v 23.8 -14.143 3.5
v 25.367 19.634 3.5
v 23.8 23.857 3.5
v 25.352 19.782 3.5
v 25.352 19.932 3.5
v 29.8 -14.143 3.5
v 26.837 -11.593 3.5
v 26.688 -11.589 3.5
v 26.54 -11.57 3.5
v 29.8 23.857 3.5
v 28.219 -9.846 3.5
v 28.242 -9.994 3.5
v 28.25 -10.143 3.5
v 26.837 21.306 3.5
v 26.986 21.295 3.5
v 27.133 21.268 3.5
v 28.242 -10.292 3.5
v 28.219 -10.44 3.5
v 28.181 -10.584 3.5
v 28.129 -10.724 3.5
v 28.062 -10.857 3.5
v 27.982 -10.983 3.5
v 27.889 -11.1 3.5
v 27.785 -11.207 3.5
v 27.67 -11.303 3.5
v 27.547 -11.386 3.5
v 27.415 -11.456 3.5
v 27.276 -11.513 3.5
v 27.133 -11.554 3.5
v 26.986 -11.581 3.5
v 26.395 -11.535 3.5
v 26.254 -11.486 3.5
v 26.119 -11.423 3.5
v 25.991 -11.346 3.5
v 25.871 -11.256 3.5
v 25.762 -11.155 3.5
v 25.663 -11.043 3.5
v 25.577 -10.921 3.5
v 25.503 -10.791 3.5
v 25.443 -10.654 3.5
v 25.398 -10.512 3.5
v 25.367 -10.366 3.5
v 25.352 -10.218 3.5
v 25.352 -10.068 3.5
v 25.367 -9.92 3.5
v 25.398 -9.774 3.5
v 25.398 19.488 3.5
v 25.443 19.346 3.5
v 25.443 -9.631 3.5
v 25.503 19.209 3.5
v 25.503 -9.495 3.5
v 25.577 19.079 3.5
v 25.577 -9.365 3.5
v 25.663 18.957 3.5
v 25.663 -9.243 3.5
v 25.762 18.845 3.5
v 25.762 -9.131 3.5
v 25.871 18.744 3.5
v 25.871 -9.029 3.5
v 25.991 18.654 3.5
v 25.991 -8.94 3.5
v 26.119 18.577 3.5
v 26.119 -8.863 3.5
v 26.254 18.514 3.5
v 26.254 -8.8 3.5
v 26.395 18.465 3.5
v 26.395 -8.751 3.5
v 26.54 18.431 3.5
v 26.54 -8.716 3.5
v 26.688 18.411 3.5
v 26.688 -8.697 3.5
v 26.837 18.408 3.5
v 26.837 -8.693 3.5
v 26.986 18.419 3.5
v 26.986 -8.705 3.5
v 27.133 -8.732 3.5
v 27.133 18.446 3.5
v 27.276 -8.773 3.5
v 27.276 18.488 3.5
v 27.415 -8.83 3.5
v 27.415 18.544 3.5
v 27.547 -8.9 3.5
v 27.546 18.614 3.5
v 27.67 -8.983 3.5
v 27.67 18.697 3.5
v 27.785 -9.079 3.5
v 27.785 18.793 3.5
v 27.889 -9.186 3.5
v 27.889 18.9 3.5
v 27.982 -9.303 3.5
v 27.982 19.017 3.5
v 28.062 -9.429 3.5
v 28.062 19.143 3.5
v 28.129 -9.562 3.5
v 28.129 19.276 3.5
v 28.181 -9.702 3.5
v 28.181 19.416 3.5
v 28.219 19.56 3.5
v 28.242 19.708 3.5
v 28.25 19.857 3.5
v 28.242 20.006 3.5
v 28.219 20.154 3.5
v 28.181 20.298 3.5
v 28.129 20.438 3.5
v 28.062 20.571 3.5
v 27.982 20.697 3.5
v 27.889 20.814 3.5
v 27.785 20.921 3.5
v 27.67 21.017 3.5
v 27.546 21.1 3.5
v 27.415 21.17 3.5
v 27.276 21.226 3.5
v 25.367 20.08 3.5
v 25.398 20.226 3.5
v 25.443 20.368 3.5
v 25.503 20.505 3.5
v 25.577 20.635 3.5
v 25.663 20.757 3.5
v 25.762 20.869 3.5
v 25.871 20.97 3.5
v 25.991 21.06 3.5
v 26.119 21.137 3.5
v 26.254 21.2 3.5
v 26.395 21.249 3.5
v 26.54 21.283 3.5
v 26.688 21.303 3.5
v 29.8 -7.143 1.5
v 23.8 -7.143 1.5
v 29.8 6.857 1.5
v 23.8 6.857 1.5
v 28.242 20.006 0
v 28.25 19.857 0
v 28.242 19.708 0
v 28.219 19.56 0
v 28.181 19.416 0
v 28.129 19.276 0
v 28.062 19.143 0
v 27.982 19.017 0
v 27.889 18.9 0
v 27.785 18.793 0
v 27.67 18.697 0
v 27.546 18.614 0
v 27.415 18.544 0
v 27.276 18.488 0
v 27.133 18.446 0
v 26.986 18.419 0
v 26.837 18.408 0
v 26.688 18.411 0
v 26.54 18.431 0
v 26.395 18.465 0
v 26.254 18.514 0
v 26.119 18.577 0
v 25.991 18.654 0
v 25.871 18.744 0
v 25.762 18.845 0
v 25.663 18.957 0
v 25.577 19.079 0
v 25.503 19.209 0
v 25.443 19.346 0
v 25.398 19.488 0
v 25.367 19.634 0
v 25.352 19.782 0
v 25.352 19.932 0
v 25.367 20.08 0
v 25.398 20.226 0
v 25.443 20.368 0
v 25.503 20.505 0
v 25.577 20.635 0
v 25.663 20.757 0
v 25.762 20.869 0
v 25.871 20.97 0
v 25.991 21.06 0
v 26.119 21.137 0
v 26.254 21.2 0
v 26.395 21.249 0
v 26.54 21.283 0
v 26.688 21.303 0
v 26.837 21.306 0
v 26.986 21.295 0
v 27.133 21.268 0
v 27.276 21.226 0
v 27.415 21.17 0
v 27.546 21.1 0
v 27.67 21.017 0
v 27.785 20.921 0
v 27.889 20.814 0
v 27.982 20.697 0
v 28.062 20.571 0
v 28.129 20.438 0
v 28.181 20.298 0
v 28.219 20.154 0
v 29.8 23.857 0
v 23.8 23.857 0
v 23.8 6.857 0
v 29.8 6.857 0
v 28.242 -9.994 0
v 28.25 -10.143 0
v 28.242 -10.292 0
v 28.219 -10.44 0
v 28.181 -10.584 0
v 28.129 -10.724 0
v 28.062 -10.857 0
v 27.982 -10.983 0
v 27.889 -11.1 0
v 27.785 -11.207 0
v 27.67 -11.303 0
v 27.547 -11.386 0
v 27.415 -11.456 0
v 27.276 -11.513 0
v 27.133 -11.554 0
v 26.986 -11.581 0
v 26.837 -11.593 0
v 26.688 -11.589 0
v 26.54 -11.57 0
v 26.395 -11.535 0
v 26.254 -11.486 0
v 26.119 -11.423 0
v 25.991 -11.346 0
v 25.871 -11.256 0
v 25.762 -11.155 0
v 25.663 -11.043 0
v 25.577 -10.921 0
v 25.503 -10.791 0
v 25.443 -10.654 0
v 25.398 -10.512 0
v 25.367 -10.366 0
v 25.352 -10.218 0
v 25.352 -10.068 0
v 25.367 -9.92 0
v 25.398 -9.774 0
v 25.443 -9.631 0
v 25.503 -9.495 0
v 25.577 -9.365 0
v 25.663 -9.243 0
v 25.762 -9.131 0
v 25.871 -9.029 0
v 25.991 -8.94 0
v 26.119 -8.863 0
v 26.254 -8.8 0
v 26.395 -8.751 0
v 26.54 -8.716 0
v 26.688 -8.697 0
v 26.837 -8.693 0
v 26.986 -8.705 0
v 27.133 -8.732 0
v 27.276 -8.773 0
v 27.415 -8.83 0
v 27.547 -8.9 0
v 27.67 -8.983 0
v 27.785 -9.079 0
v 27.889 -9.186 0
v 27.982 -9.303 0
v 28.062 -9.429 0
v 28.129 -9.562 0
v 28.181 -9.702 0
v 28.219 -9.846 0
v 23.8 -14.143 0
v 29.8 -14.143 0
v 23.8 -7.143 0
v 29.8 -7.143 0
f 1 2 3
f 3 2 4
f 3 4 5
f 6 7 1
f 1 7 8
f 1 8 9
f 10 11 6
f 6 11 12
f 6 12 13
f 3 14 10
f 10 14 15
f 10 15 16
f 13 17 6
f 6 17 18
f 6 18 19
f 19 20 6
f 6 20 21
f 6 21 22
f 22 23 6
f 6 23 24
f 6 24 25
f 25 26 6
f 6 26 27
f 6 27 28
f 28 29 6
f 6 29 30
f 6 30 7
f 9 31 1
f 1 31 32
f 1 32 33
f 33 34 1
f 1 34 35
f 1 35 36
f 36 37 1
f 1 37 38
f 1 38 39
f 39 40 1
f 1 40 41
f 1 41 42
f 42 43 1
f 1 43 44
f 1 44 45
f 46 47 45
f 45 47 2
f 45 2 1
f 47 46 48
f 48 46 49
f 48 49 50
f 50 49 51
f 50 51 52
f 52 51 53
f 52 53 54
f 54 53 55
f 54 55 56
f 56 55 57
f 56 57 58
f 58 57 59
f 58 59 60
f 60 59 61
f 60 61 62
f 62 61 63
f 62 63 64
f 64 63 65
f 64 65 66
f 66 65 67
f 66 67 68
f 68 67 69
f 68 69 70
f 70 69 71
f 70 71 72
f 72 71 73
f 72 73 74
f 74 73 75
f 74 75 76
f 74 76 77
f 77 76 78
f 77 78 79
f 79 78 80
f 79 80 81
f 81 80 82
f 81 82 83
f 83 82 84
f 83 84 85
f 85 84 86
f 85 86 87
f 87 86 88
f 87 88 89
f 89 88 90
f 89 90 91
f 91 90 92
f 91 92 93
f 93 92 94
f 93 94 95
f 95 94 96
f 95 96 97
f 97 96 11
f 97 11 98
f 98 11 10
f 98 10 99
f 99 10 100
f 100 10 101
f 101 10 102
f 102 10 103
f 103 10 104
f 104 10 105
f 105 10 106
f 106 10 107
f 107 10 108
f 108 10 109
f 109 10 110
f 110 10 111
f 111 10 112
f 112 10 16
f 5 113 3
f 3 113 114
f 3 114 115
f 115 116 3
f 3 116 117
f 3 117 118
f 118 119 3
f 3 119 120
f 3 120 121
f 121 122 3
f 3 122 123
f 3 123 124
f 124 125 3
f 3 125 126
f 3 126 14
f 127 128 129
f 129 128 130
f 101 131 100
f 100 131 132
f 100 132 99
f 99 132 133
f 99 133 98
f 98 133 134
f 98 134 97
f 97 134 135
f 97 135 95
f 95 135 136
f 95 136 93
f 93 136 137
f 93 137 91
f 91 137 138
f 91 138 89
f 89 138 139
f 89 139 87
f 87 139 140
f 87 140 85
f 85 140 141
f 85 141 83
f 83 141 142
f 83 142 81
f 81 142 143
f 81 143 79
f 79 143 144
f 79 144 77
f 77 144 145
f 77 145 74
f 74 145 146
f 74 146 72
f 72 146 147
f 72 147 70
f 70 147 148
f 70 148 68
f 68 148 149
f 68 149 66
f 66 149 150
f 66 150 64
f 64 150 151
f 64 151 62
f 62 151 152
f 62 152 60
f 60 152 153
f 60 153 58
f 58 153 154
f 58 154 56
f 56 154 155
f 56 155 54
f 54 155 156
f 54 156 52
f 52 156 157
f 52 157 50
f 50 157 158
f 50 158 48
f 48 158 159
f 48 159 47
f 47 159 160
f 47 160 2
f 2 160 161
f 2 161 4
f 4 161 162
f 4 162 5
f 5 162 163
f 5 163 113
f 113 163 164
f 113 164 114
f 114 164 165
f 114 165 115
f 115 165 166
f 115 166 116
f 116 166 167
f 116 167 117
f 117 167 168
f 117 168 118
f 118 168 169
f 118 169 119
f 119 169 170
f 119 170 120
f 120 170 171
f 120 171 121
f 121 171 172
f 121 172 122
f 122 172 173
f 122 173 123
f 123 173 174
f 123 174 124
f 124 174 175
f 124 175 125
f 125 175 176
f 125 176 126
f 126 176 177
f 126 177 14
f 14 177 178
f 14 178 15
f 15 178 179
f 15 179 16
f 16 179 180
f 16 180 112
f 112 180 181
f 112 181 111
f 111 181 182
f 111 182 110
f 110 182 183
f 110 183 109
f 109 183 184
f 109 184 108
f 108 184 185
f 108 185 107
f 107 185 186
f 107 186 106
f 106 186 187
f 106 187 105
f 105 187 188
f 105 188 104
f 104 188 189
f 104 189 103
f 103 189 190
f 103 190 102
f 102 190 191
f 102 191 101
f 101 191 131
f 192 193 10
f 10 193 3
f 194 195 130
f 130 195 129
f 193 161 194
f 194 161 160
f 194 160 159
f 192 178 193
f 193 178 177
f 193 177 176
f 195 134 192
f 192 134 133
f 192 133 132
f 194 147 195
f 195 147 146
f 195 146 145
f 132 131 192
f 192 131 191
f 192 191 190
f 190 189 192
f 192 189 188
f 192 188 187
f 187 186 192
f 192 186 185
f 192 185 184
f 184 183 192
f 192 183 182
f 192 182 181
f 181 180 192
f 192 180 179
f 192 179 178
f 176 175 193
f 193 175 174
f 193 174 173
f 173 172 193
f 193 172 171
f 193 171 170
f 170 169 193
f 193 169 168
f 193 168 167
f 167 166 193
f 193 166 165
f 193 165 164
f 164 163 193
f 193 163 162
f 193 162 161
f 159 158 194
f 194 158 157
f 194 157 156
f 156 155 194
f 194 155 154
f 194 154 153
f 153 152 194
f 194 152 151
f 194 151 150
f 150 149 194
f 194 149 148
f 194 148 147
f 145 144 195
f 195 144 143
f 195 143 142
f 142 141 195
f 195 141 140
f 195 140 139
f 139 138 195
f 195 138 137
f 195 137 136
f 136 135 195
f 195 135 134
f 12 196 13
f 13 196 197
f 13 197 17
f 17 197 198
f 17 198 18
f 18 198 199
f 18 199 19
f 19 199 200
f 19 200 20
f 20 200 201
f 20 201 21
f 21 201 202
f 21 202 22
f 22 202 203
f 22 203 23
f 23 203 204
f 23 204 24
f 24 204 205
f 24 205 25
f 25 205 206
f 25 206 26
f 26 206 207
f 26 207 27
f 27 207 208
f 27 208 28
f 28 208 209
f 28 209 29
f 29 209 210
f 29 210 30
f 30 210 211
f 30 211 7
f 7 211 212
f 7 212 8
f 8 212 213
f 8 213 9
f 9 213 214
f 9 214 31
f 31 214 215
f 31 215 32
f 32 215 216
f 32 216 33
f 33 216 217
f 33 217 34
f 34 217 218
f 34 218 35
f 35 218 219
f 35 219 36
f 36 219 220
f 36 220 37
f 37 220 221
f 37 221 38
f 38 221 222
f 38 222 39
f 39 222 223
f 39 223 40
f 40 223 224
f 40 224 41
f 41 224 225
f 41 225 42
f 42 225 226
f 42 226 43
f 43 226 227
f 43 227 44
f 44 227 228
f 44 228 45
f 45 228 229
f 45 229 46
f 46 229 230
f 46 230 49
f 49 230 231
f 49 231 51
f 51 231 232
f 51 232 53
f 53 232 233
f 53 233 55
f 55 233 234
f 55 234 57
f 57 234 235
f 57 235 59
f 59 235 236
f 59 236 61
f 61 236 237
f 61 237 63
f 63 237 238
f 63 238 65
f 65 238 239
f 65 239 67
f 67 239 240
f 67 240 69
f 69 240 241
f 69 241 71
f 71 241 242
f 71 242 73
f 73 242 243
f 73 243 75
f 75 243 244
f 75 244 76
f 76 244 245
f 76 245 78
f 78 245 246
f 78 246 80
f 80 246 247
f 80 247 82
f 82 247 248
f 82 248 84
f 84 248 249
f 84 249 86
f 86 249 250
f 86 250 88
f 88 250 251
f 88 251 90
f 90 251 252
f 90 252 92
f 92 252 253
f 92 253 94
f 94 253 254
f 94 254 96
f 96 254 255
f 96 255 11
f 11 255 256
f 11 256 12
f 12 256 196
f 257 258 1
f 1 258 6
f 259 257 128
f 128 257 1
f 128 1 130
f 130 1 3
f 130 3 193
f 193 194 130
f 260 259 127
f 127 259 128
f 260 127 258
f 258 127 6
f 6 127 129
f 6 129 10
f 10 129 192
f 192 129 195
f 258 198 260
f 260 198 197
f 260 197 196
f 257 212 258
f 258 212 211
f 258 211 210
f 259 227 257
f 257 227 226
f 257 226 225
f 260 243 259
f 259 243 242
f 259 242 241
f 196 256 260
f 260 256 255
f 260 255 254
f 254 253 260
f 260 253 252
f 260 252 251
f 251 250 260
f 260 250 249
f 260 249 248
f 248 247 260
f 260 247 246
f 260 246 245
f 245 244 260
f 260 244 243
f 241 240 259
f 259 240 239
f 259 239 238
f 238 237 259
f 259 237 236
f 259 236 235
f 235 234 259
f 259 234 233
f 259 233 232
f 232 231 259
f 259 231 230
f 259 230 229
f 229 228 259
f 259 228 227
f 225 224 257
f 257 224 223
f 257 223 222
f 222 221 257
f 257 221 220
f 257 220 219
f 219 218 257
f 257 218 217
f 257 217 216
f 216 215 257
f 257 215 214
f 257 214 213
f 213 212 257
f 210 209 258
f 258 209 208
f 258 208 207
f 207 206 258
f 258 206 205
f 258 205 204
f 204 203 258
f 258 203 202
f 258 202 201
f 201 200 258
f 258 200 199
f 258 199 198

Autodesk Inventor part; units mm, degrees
ref_plane "YZ Plane" through (0, 0, 0) normal (1, 0, 0) x (0, 1, 0)
ref_plane "XZ Plane" through (0, 0, 0) normal (0, 1, 0) x (-1, 0, 0)
ref_plane "Work Plane1" through (0, 0, 0) normal (0, 0, 1) x (1, 0, 0)
sketch "Sketch1" plane through (0, 0, 0) normal (0, 0, 1) x (1, 0, 0)
  circle A0 centre (26.8, 19.857) radius 1.45 projected
  circle A1 centre (26.8001, -10.143) radius 1.4501 projected
  line L0 (26.8, 23.857) -> (24.8, 23.857)
  line L1 (24.8, 23.857) -> (23.8, 23.857)
  line L2 (23.8, 23.857) -> (23.8, -10.143)
  line L3 (23.8, -10.143) -> (23.8, -14.143)
  line L4 (23.8, -14.143) -> (26.8, -14.143)
  line L5 (26.8, -14.143) -> (29.8, -14.143)
  line L6 (29.8, -14.143) -> (29.8, 23.857)
  line L7 (29.8, 23.857) -> (26.8, 23.857)
  line L8 (26.8, 6.857) -> (29.8, 6.857)
  line L9 (26.8, 6.857) -> (23.8, 6.857)
  line L10 (26.8, -7.143) -> (23.8, -7.143)
  line L11 (26.8, -7.143) -> (29.8, -7.143)
  point P0 (0, 0)
  dimension "d0" = 4
  dimension "d1" = 2
  dimension "d2" = 1
  dimension "d3" = 4
  dimension "d4" = 3
  dimension "d6" = 3
extrude "Extrusion1" add sketch "Sketch1" along normal blind 1.5 contours L7 L6 L8 L9 L2 L1 L0 | L6 L5 L4 L3 L2 L10 L11
sketch "Sketch2" plane through (0, 0, 1.5) normal (0, 0, 1) x (1, 0, 0)
  line L0 (23.8, 23.857) -> (23.8, 6.857) projected
  line L1 (23.8, 6.857) -> (29.8, 6.857) projected
  line L2 (29.8, 6.857) -> (29.8, 23.857) projected
  line L3 (29.8, 23.857) -> (23.8, 23.857) projected
  circle A0 centre (26.8, 19.857) radius 1.45 projected
  line L4 (23.8, 23.857) -> (23.8, -10.143) projected
  line L5 (29.8, -14.143) -> (29.8, 23.857) projected
  line L6 (29.8, -14.143) -> (29.8, -7.143) projected
  line L7 (29.8, -7.143) -> (23.8, -7.143) projected
  line L8 (23.8, -7.143) -> (23.8, -14.143) projected
  line L9 (23.8, -14.143) -> (29.8, -14.143) projected
  circle A1 centre (26.8001, -10.143) radius 1.4501 projected
  point P0 (0, 0)
extrude "Extrusion2" add sketch "Sketch2" along normal blind 2
properties part number "gps_cable_holder"
